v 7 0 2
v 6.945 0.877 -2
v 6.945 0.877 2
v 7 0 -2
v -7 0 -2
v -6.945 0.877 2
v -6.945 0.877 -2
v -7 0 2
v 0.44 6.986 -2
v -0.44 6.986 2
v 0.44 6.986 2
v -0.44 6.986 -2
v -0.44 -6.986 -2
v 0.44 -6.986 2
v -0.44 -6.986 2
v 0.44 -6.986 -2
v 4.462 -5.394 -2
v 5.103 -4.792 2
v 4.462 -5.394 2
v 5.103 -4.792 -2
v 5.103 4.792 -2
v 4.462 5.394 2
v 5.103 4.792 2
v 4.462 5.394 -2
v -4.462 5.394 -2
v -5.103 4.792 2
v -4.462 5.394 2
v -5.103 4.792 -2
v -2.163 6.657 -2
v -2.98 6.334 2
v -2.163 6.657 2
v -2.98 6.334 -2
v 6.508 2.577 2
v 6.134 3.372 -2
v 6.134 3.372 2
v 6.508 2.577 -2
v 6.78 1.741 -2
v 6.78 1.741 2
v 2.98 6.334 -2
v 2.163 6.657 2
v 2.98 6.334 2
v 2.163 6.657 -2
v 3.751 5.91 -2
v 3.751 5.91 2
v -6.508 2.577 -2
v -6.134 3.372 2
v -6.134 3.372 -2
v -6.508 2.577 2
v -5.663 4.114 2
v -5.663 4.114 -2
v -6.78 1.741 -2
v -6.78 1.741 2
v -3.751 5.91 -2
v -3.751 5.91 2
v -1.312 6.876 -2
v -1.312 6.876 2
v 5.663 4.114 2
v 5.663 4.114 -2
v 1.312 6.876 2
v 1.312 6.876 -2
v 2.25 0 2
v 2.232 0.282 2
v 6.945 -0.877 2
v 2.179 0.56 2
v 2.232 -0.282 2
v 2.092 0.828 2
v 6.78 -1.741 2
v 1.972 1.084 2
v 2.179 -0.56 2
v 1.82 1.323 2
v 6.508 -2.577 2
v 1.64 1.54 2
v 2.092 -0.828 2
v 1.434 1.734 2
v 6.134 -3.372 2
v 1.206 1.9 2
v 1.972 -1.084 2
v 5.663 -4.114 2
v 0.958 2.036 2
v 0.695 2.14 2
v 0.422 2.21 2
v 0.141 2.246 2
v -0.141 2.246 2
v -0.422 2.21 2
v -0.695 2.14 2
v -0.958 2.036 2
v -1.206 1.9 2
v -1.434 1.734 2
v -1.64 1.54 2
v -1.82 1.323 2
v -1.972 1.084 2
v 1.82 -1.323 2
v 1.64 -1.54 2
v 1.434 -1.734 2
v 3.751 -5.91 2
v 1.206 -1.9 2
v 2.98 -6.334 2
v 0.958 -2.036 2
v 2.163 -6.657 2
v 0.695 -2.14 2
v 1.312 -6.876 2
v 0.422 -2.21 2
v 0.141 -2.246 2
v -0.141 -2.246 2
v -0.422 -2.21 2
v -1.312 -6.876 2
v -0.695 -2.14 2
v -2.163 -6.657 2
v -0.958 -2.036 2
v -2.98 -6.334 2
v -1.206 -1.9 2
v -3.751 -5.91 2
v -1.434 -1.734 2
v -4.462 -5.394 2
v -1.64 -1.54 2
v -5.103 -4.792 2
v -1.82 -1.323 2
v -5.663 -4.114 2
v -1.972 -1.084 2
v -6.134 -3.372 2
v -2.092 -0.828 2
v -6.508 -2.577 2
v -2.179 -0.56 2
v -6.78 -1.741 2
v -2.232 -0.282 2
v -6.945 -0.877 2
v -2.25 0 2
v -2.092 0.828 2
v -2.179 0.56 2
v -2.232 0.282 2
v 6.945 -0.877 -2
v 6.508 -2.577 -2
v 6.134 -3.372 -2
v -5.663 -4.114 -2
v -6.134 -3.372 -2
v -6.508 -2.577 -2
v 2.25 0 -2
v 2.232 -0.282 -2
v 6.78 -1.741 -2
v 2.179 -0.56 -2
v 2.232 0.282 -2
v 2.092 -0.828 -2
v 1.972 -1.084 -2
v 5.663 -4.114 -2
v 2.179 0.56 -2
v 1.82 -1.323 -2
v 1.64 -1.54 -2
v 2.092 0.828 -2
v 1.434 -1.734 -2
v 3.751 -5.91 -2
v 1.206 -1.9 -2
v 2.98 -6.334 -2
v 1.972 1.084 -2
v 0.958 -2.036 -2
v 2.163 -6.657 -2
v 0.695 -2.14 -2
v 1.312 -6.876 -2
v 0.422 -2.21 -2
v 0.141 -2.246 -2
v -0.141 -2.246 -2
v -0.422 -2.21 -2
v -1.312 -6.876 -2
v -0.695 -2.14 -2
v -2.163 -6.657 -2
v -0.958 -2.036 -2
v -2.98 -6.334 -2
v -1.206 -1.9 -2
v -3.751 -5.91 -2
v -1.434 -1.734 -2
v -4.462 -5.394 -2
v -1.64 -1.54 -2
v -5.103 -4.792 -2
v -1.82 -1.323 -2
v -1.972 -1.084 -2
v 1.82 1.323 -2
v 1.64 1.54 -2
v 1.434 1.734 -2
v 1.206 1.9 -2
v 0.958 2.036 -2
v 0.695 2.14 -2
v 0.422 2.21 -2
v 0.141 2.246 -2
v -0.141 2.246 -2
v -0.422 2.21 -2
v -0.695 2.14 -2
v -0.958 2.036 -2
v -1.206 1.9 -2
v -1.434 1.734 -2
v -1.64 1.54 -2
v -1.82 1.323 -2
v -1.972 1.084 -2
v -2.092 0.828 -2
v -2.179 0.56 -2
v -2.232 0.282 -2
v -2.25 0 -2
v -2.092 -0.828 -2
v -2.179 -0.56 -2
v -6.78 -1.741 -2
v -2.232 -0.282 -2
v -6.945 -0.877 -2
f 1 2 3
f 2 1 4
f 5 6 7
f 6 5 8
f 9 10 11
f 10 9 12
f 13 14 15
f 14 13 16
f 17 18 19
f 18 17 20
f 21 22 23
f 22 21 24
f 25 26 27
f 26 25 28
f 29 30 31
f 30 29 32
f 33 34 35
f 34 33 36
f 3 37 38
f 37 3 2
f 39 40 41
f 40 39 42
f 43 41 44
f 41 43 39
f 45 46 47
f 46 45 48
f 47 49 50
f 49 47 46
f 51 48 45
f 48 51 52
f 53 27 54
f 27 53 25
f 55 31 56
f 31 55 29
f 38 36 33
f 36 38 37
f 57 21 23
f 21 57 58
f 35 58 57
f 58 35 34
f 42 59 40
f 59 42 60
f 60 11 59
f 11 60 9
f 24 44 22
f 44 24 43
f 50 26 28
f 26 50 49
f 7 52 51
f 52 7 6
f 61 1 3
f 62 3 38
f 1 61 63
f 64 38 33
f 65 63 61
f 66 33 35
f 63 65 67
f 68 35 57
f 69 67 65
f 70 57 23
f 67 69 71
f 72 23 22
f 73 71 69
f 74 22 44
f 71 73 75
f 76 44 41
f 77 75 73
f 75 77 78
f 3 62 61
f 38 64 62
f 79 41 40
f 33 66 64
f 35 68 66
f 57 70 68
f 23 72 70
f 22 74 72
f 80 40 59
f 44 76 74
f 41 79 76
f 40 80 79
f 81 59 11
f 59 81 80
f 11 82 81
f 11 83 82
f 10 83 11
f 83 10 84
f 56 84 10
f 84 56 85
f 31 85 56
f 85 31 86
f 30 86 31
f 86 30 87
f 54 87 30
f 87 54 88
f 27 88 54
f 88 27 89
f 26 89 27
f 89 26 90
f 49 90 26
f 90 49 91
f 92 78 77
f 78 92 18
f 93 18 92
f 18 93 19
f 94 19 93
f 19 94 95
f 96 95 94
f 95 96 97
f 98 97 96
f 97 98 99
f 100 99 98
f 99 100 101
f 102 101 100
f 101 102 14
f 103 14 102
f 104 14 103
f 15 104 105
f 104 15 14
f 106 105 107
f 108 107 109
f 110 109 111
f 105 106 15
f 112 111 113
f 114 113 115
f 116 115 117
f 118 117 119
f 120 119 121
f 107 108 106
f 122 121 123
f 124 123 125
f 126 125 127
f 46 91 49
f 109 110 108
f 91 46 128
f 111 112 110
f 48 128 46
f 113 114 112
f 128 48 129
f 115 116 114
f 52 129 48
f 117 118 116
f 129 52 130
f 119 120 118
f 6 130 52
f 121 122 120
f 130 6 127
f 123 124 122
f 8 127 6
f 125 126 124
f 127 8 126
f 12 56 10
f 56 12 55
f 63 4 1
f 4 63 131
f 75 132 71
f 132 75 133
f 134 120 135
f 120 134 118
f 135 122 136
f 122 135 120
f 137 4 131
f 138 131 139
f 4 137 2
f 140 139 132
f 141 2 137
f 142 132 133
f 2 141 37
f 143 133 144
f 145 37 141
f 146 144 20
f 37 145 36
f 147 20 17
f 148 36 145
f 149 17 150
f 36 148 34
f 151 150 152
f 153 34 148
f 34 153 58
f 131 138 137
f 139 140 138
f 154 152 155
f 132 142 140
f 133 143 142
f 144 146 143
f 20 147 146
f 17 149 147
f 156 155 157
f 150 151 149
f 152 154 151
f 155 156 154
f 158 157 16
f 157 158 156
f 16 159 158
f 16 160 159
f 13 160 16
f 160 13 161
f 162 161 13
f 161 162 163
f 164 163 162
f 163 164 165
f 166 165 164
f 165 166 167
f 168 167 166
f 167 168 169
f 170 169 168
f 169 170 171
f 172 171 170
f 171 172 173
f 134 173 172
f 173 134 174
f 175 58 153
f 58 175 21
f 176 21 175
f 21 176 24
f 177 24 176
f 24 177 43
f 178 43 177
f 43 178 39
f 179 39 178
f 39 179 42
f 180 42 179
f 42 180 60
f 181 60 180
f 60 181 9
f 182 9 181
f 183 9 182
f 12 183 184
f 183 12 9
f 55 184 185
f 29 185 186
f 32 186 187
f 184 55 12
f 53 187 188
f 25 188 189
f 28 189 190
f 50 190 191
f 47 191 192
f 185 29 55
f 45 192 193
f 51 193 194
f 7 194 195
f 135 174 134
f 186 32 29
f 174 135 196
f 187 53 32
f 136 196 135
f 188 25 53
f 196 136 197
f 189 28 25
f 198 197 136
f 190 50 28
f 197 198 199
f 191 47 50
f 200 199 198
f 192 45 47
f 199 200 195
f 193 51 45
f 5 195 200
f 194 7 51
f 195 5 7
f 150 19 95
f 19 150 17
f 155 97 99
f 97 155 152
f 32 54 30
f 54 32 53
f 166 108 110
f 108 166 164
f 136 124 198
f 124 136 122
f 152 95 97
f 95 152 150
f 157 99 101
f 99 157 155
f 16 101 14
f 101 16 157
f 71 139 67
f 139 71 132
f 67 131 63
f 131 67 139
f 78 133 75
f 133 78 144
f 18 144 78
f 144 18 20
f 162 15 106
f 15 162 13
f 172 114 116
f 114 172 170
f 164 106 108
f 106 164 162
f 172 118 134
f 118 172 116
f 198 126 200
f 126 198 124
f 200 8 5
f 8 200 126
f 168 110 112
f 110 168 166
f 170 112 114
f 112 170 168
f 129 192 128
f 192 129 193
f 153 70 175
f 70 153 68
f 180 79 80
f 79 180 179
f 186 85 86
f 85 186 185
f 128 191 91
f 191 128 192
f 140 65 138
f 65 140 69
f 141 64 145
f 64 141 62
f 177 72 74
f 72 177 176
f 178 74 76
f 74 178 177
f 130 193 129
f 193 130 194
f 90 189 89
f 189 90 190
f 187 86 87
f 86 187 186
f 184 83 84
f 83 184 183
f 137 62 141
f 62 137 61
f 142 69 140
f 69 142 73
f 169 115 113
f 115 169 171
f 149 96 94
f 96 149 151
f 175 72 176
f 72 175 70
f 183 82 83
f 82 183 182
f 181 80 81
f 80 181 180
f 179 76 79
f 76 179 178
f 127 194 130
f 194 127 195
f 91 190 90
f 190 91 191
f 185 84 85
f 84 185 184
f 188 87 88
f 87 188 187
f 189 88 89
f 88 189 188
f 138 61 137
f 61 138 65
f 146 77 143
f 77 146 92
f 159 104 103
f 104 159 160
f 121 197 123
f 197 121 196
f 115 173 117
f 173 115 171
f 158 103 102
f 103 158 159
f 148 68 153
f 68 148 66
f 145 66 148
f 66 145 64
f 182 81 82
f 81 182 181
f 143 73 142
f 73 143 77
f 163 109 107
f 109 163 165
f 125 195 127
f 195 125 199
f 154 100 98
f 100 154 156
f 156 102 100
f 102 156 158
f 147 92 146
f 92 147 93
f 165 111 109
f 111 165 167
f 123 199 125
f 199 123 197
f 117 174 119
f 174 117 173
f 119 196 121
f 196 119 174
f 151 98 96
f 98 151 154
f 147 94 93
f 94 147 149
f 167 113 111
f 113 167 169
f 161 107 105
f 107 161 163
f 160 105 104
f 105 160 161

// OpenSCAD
$fn = 50;


difference() {
	union() {
		translate(v = [0, 0, -2.0000000000]) {
			cylinder(h = 4, r = 7.0000000000);
		}
	}
	union() {
		translate(v = [0, 0, -100.0000000000]) {
			cylinder(h = 200, r = 2.2500000000);
		}
	}
}
